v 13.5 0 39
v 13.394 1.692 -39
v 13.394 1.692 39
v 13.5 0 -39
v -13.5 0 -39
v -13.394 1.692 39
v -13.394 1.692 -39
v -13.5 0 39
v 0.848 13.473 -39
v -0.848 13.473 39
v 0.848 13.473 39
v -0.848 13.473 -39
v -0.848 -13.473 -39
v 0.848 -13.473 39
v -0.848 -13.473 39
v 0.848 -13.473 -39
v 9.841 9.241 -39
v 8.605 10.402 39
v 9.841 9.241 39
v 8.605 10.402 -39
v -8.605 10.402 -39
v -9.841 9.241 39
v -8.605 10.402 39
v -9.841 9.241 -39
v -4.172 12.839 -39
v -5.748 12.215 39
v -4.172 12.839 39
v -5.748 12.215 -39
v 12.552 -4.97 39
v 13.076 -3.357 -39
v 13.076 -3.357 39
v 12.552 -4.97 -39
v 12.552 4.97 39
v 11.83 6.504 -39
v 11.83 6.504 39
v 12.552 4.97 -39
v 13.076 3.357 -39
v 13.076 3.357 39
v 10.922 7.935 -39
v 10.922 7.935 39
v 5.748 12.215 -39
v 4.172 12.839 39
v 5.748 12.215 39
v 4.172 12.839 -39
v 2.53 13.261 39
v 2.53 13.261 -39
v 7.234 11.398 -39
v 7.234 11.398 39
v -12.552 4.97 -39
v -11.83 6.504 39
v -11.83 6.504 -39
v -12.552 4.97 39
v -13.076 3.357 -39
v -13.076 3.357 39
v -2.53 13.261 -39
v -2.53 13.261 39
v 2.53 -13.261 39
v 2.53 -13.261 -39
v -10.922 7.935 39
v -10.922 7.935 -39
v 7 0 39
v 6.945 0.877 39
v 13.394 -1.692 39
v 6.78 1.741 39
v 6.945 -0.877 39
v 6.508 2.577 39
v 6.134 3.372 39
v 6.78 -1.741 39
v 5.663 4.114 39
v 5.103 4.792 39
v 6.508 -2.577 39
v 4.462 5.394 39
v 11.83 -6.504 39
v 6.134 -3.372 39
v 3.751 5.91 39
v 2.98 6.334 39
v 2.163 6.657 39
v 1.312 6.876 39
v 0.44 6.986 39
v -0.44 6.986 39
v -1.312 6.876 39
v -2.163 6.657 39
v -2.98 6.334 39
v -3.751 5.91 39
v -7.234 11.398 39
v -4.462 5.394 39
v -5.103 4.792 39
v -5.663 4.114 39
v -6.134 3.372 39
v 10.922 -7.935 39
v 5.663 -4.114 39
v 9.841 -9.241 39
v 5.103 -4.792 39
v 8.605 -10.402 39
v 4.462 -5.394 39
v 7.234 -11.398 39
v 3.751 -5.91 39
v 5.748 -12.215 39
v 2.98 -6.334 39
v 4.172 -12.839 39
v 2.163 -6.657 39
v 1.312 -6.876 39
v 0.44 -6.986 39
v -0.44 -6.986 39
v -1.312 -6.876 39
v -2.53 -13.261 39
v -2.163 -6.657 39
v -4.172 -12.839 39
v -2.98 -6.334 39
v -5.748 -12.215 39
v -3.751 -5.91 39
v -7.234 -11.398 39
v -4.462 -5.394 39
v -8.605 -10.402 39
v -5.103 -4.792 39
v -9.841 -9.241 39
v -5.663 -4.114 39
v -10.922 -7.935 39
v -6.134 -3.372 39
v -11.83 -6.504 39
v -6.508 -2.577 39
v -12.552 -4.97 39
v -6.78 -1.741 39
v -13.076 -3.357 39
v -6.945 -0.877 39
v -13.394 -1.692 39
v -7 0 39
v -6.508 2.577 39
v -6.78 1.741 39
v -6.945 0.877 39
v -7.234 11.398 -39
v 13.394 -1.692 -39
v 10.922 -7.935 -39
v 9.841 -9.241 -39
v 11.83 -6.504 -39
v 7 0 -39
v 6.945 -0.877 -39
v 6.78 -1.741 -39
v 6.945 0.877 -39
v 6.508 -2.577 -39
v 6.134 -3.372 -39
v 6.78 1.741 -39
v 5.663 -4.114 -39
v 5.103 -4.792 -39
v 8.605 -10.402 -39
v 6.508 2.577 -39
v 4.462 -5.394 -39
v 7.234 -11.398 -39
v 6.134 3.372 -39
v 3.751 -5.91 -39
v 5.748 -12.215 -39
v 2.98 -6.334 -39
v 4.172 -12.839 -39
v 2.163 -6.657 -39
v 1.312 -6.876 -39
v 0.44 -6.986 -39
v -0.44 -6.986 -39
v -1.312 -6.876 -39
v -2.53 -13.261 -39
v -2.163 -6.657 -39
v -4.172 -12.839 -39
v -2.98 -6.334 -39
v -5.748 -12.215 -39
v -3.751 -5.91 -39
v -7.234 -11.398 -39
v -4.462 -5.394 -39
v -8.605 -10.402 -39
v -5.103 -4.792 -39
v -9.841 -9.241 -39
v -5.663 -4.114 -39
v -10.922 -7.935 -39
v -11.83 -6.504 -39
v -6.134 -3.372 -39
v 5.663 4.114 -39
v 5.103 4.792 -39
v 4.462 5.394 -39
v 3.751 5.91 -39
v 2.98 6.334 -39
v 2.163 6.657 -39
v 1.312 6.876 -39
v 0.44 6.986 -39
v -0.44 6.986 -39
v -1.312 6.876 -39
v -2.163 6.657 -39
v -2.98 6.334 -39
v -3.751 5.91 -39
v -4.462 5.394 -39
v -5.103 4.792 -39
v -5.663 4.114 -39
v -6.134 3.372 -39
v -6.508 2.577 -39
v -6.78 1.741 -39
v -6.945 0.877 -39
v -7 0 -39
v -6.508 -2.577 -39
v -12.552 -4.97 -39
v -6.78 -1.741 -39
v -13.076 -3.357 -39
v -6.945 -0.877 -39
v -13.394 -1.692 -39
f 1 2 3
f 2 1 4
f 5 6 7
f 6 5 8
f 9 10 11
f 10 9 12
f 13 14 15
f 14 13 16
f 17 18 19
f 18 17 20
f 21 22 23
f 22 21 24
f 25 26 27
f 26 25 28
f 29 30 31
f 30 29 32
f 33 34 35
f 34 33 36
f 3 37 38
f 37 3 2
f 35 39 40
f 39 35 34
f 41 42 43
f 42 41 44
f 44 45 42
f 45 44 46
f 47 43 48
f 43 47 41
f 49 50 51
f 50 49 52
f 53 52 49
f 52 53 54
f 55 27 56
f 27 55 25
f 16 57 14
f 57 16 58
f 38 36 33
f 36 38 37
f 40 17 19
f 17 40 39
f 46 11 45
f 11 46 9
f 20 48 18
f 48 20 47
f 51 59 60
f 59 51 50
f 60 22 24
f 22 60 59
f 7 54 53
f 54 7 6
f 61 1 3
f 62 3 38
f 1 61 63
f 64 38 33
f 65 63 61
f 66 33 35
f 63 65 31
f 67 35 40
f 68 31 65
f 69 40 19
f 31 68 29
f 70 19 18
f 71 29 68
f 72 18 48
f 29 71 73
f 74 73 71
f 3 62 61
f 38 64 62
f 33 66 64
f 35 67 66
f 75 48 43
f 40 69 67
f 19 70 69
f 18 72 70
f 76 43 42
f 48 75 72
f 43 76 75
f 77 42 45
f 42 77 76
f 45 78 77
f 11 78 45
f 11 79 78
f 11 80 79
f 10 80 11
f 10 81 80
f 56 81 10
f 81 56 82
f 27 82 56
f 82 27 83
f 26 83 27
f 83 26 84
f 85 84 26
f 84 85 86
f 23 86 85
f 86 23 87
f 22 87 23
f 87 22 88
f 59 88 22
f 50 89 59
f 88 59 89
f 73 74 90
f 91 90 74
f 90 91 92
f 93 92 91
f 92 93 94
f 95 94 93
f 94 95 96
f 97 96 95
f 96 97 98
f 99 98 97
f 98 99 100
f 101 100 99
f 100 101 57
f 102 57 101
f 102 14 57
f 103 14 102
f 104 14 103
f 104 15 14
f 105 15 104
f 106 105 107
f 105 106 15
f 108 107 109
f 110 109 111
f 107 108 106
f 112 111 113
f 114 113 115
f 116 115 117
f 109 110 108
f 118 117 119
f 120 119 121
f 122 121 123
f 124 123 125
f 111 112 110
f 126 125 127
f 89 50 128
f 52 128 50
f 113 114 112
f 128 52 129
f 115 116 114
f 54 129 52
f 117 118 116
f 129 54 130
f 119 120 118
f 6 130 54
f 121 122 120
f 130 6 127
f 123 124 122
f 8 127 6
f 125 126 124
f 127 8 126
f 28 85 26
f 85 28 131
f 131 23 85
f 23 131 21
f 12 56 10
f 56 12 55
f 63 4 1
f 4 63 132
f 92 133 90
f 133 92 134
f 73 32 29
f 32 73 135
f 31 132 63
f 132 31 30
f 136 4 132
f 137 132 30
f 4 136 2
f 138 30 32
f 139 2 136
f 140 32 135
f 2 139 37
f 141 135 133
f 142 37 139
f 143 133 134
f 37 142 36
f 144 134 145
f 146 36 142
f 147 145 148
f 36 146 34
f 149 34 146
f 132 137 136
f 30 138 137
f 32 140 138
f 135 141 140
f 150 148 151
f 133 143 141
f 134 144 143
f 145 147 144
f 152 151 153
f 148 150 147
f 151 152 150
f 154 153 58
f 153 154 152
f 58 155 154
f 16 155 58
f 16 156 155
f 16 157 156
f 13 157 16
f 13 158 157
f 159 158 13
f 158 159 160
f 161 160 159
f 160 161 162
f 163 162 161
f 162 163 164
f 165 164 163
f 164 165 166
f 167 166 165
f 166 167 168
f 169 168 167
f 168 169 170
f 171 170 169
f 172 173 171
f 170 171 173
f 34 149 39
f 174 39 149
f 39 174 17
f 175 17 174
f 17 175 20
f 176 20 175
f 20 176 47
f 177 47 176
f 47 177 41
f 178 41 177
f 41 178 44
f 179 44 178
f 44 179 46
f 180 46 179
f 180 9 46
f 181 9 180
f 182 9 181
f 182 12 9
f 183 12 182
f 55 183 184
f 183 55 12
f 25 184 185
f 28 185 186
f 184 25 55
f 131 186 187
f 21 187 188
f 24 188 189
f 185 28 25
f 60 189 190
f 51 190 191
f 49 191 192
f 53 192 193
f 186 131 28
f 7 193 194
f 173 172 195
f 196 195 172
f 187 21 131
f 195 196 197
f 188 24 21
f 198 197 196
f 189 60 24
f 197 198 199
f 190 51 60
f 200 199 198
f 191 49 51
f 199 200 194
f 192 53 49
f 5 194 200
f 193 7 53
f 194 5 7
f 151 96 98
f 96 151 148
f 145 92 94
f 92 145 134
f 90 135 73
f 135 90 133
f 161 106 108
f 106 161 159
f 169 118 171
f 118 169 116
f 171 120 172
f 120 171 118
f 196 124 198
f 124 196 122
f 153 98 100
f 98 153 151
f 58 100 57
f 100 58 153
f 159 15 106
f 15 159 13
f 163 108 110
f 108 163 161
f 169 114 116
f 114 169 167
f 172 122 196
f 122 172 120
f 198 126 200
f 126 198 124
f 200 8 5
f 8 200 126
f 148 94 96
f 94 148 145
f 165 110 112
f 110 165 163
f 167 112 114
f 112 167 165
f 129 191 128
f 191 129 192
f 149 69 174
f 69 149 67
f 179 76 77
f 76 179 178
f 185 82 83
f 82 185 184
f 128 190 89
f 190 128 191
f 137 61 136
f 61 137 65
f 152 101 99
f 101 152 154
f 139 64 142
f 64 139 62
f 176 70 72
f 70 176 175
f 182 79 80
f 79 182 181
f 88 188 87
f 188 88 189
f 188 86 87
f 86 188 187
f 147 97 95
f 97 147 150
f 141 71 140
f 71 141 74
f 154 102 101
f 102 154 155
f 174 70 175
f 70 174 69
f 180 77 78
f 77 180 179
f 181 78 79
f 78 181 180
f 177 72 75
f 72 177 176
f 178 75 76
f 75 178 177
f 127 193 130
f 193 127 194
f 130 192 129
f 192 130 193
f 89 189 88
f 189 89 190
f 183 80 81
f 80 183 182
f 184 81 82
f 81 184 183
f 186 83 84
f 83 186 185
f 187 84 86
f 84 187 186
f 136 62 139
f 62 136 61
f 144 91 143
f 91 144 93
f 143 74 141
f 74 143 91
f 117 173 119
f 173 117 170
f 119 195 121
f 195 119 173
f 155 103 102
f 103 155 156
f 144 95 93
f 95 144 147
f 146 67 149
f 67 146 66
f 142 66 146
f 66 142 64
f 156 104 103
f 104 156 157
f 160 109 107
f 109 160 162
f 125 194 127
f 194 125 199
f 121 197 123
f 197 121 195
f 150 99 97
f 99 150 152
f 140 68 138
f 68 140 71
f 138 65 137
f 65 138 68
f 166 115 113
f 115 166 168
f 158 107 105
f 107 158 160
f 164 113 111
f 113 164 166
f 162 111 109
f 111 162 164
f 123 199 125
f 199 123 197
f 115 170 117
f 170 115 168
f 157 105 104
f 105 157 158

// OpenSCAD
$fn = 50;


difference() {
	union() {
		translate(v = [0, 0, -39.0000000000]) {
			cylinder(h = 78, r = 13.5000000000);
		}
	}
	union() {
		translate(v = [0, 0, -100.0000000000]) {
			cylinder(h = 200, r = 7);
		}
	}
}
